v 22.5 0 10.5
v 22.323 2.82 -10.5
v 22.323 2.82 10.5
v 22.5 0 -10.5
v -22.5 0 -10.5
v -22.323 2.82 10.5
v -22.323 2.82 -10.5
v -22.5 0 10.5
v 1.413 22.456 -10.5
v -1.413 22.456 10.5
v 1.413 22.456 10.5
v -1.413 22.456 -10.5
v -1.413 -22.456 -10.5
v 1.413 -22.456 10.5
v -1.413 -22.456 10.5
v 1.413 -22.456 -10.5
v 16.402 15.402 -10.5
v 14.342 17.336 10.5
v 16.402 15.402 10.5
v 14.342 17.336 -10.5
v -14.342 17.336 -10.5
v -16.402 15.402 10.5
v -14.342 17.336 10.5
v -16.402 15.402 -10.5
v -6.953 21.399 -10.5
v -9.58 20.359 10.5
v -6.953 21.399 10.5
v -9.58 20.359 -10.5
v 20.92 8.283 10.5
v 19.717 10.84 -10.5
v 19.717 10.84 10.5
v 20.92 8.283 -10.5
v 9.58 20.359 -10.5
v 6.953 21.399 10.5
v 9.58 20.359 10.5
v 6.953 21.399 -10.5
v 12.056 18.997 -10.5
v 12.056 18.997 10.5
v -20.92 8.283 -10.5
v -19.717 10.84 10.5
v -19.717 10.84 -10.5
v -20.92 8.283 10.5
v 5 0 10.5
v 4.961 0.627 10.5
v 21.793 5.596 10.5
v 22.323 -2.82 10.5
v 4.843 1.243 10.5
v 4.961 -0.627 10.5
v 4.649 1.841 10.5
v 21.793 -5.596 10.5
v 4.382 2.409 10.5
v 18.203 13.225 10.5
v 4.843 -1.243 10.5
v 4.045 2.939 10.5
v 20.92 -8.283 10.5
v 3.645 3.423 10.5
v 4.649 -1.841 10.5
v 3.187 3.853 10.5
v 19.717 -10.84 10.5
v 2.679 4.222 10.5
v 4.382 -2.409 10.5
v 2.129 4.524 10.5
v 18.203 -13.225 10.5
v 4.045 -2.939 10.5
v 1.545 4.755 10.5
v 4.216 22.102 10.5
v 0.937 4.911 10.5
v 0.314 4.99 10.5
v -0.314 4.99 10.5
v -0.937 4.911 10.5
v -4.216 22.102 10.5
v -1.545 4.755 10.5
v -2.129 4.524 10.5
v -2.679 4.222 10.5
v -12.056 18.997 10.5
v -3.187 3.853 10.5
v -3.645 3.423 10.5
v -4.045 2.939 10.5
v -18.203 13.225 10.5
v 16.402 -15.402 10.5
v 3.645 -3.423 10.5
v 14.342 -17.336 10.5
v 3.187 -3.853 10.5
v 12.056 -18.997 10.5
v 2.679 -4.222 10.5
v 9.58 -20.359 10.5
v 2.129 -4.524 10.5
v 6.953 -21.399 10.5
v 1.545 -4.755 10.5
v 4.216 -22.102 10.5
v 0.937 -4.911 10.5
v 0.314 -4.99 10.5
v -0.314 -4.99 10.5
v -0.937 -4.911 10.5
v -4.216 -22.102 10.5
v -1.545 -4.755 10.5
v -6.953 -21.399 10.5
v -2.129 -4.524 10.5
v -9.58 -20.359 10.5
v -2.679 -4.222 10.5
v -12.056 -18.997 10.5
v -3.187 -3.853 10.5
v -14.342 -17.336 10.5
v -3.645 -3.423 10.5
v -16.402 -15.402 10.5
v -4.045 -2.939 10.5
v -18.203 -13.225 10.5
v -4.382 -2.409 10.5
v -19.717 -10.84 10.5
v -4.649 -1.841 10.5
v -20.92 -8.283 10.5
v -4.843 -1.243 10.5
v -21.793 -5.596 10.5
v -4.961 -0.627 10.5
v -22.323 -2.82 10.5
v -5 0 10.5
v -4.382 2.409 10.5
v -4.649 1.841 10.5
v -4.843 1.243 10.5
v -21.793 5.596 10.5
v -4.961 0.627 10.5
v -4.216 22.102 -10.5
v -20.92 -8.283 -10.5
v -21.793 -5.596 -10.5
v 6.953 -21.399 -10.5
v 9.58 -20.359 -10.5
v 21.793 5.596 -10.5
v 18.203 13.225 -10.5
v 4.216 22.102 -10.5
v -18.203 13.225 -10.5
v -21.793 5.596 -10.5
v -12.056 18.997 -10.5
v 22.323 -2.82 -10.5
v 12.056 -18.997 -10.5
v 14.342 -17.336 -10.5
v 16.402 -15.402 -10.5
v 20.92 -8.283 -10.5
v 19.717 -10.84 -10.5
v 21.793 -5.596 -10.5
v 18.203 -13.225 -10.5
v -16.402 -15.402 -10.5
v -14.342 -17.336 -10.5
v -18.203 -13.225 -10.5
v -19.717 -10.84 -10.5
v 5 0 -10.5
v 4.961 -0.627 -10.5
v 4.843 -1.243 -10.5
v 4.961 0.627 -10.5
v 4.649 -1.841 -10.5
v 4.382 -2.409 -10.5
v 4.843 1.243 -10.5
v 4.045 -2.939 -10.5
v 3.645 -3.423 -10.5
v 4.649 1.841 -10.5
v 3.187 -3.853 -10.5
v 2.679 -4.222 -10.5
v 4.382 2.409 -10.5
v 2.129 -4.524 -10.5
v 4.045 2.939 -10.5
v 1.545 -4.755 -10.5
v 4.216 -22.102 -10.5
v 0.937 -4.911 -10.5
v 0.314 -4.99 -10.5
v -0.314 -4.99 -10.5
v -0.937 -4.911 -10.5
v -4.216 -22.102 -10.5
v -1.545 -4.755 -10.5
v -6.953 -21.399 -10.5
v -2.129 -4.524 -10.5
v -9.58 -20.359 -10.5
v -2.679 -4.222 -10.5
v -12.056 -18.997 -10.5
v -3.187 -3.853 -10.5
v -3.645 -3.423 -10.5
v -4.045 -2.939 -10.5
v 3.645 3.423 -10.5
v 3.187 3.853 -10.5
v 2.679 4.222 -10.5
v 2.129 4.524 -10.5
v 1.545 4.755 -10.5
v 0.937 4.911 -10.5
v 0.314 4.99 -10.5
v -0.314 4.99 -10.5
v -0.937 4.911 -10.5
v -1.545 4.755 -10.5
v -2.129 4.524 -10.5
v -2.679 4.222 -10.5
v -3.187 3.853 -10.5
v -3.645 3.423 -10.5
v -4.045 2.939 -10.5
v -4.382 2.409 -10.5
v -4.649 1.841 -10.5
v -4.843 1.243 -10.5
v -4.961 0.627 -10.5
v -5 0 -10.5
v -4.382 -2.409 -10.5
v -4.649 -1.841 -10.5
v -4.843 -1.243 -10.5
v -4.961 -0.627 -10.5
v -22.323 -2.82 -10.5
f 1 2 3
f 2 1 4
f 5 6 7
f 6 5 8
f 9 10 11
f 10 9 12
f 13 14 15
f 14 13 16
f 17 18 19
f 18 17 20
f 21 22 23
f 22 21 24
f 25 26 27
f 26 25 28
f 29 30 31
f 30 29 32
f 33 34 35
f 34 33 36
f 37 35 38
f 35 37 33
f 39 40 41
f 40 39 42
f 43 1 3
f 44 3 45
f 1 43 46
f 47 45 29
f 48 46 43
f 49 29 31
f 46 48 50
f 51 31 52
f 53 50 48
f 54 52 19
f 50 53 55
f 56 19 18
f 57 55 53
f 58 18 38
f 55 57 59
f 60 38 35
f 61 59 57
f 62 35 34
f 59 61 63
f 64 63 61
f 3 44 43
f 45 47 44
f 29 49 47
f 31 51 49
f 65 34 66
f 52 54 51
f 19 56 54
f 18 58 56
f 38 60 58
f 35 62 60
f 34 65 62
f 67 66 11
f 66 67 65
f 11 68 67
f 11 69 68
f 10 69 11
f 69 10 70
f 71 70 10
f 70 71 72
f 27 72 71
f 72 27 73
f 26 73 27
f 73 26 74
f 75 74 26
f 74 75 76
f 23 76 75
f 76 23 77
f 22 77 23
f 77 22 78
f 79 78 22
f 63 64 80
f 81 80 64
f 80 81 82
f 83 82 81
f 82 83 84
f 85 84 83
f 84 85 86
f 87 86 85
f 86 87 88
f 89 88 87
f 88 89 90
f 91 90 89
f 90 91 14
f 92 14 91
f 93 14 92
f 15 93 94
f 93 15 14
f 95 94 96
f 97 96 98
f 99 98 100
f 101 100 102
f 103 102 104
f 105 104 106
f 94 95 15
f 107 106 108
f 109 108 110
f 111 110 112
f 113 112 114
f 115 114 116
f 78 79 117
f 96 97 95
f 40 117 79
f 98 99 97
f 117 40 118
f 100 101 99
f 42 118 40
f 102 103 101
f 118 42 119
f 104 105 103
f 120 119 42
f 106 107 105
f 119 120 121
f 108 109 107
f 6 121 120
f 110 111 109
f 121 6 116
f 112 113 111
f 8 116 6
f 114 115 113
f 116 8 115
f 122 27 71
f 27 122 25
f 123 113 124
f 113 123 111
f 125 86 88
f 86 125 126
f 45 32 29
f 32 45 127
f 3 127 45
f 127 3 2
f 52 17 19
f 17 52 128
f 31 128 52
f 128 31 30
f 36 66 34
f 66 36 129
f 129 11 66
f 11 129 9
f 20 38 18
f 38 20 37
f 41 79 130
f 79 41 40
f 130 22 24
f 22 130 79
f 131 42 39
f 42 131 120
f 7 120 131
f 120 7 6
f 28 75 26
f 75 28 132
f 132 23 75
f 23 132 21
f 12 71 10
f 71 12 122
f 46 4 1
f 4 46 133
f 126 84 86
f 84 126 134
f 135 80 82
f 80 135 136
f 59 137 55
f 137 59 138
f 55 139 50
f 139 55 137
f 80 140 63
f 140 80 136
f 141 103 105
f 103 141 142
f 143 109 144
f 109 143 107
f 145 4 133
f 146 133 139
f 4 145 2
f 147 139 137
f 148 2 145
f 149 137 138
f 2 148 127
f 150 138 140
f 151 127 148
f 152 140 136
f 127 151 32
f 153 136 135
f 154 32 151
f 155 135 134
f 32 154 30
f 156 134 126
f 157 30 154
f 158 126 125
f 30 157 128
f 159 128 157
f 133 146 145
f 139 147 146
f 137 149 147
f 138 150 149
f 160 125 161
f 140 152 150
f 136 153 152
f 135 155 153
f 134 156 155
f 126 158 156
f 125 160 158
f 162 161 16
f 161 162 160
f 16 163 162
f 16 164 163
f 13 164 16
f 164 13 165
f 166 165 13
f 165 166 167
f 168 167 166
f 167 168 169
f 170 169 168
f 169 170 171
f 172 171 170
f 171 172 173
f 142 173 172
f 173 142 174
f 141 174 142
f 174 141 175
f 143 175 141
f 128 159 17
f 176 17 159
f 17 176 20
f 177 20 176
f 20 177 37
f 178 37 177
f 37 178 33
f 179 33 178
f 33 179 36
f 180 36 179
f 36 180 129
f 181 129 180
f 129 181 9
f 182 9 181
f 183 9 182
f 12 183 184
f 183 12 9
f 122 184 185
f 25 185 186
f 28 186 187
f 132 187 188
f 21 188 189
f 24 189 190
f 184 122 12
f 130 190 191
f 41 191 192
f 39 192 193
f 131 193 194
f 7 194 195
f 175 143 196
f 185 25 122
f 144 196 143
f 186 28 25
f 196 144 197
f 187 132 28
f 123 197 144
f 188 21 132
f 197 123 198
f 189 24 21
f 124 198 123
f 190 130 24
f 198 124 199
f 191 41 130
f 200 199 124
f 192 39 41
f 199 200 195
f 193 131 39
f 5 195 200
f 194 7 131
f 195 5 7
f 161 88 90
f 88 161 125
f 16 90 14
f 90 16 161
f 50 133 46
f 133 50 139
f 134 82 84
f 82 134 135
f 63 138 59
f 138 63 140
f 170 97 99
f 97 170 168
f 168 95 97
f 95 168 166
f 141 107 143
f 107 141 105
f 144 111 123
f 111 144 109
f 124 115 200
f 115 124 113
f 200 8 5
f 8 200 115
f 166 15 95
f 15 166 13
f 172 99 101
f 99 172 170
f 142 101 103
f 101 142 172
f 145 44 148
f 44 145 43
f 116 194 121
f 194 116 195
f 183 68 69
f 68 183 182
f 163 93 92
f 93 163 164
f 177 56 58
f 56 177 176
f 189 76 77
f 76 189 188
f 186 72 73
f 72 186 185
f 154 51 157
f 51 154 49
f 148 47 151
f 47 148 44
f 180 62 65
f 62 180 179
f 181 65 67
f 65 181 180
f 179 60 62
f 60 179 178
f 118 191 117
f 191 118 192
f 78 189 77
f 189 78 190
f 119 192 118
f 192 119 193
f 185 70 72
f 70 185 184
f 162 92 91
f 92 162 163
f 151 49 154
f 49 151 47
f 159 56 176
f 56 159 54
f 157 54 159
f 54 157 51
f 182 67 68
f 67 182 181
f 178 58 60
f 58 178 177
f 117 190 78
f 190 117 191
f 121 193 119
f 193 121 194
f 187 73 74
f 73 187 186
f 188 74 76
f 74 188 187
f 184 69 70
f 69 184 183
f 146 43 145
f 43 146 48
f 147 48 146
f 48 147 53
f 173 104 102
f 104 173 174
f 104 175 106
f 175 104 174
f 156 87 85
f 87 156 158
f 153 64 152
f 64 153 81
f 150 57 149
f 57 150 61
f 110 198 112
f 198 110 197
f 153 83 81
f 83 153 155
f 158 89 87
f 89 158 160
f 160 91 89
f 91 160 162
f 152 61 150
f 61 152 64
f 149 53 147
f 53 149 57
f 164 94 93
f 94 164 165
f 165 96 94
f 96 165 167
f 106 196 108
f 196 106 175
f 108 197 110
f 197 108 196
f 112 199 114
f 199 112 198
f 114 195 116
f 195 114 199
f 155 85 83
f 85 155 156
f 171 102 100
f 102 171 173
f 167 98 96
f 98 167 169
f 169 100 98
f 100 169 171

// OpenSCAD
$fn = 50;


difference() {
	union() {
		translate(v = [0, 0, -10.5000000000]) {
			cylinder(h = 21, r = 22.5000000000);
		}
	}
	union() {
		translate(v = [0, 0, -100.0000000000]) {
			cylinder(h = 200, r = 5);
		}
	}
}
